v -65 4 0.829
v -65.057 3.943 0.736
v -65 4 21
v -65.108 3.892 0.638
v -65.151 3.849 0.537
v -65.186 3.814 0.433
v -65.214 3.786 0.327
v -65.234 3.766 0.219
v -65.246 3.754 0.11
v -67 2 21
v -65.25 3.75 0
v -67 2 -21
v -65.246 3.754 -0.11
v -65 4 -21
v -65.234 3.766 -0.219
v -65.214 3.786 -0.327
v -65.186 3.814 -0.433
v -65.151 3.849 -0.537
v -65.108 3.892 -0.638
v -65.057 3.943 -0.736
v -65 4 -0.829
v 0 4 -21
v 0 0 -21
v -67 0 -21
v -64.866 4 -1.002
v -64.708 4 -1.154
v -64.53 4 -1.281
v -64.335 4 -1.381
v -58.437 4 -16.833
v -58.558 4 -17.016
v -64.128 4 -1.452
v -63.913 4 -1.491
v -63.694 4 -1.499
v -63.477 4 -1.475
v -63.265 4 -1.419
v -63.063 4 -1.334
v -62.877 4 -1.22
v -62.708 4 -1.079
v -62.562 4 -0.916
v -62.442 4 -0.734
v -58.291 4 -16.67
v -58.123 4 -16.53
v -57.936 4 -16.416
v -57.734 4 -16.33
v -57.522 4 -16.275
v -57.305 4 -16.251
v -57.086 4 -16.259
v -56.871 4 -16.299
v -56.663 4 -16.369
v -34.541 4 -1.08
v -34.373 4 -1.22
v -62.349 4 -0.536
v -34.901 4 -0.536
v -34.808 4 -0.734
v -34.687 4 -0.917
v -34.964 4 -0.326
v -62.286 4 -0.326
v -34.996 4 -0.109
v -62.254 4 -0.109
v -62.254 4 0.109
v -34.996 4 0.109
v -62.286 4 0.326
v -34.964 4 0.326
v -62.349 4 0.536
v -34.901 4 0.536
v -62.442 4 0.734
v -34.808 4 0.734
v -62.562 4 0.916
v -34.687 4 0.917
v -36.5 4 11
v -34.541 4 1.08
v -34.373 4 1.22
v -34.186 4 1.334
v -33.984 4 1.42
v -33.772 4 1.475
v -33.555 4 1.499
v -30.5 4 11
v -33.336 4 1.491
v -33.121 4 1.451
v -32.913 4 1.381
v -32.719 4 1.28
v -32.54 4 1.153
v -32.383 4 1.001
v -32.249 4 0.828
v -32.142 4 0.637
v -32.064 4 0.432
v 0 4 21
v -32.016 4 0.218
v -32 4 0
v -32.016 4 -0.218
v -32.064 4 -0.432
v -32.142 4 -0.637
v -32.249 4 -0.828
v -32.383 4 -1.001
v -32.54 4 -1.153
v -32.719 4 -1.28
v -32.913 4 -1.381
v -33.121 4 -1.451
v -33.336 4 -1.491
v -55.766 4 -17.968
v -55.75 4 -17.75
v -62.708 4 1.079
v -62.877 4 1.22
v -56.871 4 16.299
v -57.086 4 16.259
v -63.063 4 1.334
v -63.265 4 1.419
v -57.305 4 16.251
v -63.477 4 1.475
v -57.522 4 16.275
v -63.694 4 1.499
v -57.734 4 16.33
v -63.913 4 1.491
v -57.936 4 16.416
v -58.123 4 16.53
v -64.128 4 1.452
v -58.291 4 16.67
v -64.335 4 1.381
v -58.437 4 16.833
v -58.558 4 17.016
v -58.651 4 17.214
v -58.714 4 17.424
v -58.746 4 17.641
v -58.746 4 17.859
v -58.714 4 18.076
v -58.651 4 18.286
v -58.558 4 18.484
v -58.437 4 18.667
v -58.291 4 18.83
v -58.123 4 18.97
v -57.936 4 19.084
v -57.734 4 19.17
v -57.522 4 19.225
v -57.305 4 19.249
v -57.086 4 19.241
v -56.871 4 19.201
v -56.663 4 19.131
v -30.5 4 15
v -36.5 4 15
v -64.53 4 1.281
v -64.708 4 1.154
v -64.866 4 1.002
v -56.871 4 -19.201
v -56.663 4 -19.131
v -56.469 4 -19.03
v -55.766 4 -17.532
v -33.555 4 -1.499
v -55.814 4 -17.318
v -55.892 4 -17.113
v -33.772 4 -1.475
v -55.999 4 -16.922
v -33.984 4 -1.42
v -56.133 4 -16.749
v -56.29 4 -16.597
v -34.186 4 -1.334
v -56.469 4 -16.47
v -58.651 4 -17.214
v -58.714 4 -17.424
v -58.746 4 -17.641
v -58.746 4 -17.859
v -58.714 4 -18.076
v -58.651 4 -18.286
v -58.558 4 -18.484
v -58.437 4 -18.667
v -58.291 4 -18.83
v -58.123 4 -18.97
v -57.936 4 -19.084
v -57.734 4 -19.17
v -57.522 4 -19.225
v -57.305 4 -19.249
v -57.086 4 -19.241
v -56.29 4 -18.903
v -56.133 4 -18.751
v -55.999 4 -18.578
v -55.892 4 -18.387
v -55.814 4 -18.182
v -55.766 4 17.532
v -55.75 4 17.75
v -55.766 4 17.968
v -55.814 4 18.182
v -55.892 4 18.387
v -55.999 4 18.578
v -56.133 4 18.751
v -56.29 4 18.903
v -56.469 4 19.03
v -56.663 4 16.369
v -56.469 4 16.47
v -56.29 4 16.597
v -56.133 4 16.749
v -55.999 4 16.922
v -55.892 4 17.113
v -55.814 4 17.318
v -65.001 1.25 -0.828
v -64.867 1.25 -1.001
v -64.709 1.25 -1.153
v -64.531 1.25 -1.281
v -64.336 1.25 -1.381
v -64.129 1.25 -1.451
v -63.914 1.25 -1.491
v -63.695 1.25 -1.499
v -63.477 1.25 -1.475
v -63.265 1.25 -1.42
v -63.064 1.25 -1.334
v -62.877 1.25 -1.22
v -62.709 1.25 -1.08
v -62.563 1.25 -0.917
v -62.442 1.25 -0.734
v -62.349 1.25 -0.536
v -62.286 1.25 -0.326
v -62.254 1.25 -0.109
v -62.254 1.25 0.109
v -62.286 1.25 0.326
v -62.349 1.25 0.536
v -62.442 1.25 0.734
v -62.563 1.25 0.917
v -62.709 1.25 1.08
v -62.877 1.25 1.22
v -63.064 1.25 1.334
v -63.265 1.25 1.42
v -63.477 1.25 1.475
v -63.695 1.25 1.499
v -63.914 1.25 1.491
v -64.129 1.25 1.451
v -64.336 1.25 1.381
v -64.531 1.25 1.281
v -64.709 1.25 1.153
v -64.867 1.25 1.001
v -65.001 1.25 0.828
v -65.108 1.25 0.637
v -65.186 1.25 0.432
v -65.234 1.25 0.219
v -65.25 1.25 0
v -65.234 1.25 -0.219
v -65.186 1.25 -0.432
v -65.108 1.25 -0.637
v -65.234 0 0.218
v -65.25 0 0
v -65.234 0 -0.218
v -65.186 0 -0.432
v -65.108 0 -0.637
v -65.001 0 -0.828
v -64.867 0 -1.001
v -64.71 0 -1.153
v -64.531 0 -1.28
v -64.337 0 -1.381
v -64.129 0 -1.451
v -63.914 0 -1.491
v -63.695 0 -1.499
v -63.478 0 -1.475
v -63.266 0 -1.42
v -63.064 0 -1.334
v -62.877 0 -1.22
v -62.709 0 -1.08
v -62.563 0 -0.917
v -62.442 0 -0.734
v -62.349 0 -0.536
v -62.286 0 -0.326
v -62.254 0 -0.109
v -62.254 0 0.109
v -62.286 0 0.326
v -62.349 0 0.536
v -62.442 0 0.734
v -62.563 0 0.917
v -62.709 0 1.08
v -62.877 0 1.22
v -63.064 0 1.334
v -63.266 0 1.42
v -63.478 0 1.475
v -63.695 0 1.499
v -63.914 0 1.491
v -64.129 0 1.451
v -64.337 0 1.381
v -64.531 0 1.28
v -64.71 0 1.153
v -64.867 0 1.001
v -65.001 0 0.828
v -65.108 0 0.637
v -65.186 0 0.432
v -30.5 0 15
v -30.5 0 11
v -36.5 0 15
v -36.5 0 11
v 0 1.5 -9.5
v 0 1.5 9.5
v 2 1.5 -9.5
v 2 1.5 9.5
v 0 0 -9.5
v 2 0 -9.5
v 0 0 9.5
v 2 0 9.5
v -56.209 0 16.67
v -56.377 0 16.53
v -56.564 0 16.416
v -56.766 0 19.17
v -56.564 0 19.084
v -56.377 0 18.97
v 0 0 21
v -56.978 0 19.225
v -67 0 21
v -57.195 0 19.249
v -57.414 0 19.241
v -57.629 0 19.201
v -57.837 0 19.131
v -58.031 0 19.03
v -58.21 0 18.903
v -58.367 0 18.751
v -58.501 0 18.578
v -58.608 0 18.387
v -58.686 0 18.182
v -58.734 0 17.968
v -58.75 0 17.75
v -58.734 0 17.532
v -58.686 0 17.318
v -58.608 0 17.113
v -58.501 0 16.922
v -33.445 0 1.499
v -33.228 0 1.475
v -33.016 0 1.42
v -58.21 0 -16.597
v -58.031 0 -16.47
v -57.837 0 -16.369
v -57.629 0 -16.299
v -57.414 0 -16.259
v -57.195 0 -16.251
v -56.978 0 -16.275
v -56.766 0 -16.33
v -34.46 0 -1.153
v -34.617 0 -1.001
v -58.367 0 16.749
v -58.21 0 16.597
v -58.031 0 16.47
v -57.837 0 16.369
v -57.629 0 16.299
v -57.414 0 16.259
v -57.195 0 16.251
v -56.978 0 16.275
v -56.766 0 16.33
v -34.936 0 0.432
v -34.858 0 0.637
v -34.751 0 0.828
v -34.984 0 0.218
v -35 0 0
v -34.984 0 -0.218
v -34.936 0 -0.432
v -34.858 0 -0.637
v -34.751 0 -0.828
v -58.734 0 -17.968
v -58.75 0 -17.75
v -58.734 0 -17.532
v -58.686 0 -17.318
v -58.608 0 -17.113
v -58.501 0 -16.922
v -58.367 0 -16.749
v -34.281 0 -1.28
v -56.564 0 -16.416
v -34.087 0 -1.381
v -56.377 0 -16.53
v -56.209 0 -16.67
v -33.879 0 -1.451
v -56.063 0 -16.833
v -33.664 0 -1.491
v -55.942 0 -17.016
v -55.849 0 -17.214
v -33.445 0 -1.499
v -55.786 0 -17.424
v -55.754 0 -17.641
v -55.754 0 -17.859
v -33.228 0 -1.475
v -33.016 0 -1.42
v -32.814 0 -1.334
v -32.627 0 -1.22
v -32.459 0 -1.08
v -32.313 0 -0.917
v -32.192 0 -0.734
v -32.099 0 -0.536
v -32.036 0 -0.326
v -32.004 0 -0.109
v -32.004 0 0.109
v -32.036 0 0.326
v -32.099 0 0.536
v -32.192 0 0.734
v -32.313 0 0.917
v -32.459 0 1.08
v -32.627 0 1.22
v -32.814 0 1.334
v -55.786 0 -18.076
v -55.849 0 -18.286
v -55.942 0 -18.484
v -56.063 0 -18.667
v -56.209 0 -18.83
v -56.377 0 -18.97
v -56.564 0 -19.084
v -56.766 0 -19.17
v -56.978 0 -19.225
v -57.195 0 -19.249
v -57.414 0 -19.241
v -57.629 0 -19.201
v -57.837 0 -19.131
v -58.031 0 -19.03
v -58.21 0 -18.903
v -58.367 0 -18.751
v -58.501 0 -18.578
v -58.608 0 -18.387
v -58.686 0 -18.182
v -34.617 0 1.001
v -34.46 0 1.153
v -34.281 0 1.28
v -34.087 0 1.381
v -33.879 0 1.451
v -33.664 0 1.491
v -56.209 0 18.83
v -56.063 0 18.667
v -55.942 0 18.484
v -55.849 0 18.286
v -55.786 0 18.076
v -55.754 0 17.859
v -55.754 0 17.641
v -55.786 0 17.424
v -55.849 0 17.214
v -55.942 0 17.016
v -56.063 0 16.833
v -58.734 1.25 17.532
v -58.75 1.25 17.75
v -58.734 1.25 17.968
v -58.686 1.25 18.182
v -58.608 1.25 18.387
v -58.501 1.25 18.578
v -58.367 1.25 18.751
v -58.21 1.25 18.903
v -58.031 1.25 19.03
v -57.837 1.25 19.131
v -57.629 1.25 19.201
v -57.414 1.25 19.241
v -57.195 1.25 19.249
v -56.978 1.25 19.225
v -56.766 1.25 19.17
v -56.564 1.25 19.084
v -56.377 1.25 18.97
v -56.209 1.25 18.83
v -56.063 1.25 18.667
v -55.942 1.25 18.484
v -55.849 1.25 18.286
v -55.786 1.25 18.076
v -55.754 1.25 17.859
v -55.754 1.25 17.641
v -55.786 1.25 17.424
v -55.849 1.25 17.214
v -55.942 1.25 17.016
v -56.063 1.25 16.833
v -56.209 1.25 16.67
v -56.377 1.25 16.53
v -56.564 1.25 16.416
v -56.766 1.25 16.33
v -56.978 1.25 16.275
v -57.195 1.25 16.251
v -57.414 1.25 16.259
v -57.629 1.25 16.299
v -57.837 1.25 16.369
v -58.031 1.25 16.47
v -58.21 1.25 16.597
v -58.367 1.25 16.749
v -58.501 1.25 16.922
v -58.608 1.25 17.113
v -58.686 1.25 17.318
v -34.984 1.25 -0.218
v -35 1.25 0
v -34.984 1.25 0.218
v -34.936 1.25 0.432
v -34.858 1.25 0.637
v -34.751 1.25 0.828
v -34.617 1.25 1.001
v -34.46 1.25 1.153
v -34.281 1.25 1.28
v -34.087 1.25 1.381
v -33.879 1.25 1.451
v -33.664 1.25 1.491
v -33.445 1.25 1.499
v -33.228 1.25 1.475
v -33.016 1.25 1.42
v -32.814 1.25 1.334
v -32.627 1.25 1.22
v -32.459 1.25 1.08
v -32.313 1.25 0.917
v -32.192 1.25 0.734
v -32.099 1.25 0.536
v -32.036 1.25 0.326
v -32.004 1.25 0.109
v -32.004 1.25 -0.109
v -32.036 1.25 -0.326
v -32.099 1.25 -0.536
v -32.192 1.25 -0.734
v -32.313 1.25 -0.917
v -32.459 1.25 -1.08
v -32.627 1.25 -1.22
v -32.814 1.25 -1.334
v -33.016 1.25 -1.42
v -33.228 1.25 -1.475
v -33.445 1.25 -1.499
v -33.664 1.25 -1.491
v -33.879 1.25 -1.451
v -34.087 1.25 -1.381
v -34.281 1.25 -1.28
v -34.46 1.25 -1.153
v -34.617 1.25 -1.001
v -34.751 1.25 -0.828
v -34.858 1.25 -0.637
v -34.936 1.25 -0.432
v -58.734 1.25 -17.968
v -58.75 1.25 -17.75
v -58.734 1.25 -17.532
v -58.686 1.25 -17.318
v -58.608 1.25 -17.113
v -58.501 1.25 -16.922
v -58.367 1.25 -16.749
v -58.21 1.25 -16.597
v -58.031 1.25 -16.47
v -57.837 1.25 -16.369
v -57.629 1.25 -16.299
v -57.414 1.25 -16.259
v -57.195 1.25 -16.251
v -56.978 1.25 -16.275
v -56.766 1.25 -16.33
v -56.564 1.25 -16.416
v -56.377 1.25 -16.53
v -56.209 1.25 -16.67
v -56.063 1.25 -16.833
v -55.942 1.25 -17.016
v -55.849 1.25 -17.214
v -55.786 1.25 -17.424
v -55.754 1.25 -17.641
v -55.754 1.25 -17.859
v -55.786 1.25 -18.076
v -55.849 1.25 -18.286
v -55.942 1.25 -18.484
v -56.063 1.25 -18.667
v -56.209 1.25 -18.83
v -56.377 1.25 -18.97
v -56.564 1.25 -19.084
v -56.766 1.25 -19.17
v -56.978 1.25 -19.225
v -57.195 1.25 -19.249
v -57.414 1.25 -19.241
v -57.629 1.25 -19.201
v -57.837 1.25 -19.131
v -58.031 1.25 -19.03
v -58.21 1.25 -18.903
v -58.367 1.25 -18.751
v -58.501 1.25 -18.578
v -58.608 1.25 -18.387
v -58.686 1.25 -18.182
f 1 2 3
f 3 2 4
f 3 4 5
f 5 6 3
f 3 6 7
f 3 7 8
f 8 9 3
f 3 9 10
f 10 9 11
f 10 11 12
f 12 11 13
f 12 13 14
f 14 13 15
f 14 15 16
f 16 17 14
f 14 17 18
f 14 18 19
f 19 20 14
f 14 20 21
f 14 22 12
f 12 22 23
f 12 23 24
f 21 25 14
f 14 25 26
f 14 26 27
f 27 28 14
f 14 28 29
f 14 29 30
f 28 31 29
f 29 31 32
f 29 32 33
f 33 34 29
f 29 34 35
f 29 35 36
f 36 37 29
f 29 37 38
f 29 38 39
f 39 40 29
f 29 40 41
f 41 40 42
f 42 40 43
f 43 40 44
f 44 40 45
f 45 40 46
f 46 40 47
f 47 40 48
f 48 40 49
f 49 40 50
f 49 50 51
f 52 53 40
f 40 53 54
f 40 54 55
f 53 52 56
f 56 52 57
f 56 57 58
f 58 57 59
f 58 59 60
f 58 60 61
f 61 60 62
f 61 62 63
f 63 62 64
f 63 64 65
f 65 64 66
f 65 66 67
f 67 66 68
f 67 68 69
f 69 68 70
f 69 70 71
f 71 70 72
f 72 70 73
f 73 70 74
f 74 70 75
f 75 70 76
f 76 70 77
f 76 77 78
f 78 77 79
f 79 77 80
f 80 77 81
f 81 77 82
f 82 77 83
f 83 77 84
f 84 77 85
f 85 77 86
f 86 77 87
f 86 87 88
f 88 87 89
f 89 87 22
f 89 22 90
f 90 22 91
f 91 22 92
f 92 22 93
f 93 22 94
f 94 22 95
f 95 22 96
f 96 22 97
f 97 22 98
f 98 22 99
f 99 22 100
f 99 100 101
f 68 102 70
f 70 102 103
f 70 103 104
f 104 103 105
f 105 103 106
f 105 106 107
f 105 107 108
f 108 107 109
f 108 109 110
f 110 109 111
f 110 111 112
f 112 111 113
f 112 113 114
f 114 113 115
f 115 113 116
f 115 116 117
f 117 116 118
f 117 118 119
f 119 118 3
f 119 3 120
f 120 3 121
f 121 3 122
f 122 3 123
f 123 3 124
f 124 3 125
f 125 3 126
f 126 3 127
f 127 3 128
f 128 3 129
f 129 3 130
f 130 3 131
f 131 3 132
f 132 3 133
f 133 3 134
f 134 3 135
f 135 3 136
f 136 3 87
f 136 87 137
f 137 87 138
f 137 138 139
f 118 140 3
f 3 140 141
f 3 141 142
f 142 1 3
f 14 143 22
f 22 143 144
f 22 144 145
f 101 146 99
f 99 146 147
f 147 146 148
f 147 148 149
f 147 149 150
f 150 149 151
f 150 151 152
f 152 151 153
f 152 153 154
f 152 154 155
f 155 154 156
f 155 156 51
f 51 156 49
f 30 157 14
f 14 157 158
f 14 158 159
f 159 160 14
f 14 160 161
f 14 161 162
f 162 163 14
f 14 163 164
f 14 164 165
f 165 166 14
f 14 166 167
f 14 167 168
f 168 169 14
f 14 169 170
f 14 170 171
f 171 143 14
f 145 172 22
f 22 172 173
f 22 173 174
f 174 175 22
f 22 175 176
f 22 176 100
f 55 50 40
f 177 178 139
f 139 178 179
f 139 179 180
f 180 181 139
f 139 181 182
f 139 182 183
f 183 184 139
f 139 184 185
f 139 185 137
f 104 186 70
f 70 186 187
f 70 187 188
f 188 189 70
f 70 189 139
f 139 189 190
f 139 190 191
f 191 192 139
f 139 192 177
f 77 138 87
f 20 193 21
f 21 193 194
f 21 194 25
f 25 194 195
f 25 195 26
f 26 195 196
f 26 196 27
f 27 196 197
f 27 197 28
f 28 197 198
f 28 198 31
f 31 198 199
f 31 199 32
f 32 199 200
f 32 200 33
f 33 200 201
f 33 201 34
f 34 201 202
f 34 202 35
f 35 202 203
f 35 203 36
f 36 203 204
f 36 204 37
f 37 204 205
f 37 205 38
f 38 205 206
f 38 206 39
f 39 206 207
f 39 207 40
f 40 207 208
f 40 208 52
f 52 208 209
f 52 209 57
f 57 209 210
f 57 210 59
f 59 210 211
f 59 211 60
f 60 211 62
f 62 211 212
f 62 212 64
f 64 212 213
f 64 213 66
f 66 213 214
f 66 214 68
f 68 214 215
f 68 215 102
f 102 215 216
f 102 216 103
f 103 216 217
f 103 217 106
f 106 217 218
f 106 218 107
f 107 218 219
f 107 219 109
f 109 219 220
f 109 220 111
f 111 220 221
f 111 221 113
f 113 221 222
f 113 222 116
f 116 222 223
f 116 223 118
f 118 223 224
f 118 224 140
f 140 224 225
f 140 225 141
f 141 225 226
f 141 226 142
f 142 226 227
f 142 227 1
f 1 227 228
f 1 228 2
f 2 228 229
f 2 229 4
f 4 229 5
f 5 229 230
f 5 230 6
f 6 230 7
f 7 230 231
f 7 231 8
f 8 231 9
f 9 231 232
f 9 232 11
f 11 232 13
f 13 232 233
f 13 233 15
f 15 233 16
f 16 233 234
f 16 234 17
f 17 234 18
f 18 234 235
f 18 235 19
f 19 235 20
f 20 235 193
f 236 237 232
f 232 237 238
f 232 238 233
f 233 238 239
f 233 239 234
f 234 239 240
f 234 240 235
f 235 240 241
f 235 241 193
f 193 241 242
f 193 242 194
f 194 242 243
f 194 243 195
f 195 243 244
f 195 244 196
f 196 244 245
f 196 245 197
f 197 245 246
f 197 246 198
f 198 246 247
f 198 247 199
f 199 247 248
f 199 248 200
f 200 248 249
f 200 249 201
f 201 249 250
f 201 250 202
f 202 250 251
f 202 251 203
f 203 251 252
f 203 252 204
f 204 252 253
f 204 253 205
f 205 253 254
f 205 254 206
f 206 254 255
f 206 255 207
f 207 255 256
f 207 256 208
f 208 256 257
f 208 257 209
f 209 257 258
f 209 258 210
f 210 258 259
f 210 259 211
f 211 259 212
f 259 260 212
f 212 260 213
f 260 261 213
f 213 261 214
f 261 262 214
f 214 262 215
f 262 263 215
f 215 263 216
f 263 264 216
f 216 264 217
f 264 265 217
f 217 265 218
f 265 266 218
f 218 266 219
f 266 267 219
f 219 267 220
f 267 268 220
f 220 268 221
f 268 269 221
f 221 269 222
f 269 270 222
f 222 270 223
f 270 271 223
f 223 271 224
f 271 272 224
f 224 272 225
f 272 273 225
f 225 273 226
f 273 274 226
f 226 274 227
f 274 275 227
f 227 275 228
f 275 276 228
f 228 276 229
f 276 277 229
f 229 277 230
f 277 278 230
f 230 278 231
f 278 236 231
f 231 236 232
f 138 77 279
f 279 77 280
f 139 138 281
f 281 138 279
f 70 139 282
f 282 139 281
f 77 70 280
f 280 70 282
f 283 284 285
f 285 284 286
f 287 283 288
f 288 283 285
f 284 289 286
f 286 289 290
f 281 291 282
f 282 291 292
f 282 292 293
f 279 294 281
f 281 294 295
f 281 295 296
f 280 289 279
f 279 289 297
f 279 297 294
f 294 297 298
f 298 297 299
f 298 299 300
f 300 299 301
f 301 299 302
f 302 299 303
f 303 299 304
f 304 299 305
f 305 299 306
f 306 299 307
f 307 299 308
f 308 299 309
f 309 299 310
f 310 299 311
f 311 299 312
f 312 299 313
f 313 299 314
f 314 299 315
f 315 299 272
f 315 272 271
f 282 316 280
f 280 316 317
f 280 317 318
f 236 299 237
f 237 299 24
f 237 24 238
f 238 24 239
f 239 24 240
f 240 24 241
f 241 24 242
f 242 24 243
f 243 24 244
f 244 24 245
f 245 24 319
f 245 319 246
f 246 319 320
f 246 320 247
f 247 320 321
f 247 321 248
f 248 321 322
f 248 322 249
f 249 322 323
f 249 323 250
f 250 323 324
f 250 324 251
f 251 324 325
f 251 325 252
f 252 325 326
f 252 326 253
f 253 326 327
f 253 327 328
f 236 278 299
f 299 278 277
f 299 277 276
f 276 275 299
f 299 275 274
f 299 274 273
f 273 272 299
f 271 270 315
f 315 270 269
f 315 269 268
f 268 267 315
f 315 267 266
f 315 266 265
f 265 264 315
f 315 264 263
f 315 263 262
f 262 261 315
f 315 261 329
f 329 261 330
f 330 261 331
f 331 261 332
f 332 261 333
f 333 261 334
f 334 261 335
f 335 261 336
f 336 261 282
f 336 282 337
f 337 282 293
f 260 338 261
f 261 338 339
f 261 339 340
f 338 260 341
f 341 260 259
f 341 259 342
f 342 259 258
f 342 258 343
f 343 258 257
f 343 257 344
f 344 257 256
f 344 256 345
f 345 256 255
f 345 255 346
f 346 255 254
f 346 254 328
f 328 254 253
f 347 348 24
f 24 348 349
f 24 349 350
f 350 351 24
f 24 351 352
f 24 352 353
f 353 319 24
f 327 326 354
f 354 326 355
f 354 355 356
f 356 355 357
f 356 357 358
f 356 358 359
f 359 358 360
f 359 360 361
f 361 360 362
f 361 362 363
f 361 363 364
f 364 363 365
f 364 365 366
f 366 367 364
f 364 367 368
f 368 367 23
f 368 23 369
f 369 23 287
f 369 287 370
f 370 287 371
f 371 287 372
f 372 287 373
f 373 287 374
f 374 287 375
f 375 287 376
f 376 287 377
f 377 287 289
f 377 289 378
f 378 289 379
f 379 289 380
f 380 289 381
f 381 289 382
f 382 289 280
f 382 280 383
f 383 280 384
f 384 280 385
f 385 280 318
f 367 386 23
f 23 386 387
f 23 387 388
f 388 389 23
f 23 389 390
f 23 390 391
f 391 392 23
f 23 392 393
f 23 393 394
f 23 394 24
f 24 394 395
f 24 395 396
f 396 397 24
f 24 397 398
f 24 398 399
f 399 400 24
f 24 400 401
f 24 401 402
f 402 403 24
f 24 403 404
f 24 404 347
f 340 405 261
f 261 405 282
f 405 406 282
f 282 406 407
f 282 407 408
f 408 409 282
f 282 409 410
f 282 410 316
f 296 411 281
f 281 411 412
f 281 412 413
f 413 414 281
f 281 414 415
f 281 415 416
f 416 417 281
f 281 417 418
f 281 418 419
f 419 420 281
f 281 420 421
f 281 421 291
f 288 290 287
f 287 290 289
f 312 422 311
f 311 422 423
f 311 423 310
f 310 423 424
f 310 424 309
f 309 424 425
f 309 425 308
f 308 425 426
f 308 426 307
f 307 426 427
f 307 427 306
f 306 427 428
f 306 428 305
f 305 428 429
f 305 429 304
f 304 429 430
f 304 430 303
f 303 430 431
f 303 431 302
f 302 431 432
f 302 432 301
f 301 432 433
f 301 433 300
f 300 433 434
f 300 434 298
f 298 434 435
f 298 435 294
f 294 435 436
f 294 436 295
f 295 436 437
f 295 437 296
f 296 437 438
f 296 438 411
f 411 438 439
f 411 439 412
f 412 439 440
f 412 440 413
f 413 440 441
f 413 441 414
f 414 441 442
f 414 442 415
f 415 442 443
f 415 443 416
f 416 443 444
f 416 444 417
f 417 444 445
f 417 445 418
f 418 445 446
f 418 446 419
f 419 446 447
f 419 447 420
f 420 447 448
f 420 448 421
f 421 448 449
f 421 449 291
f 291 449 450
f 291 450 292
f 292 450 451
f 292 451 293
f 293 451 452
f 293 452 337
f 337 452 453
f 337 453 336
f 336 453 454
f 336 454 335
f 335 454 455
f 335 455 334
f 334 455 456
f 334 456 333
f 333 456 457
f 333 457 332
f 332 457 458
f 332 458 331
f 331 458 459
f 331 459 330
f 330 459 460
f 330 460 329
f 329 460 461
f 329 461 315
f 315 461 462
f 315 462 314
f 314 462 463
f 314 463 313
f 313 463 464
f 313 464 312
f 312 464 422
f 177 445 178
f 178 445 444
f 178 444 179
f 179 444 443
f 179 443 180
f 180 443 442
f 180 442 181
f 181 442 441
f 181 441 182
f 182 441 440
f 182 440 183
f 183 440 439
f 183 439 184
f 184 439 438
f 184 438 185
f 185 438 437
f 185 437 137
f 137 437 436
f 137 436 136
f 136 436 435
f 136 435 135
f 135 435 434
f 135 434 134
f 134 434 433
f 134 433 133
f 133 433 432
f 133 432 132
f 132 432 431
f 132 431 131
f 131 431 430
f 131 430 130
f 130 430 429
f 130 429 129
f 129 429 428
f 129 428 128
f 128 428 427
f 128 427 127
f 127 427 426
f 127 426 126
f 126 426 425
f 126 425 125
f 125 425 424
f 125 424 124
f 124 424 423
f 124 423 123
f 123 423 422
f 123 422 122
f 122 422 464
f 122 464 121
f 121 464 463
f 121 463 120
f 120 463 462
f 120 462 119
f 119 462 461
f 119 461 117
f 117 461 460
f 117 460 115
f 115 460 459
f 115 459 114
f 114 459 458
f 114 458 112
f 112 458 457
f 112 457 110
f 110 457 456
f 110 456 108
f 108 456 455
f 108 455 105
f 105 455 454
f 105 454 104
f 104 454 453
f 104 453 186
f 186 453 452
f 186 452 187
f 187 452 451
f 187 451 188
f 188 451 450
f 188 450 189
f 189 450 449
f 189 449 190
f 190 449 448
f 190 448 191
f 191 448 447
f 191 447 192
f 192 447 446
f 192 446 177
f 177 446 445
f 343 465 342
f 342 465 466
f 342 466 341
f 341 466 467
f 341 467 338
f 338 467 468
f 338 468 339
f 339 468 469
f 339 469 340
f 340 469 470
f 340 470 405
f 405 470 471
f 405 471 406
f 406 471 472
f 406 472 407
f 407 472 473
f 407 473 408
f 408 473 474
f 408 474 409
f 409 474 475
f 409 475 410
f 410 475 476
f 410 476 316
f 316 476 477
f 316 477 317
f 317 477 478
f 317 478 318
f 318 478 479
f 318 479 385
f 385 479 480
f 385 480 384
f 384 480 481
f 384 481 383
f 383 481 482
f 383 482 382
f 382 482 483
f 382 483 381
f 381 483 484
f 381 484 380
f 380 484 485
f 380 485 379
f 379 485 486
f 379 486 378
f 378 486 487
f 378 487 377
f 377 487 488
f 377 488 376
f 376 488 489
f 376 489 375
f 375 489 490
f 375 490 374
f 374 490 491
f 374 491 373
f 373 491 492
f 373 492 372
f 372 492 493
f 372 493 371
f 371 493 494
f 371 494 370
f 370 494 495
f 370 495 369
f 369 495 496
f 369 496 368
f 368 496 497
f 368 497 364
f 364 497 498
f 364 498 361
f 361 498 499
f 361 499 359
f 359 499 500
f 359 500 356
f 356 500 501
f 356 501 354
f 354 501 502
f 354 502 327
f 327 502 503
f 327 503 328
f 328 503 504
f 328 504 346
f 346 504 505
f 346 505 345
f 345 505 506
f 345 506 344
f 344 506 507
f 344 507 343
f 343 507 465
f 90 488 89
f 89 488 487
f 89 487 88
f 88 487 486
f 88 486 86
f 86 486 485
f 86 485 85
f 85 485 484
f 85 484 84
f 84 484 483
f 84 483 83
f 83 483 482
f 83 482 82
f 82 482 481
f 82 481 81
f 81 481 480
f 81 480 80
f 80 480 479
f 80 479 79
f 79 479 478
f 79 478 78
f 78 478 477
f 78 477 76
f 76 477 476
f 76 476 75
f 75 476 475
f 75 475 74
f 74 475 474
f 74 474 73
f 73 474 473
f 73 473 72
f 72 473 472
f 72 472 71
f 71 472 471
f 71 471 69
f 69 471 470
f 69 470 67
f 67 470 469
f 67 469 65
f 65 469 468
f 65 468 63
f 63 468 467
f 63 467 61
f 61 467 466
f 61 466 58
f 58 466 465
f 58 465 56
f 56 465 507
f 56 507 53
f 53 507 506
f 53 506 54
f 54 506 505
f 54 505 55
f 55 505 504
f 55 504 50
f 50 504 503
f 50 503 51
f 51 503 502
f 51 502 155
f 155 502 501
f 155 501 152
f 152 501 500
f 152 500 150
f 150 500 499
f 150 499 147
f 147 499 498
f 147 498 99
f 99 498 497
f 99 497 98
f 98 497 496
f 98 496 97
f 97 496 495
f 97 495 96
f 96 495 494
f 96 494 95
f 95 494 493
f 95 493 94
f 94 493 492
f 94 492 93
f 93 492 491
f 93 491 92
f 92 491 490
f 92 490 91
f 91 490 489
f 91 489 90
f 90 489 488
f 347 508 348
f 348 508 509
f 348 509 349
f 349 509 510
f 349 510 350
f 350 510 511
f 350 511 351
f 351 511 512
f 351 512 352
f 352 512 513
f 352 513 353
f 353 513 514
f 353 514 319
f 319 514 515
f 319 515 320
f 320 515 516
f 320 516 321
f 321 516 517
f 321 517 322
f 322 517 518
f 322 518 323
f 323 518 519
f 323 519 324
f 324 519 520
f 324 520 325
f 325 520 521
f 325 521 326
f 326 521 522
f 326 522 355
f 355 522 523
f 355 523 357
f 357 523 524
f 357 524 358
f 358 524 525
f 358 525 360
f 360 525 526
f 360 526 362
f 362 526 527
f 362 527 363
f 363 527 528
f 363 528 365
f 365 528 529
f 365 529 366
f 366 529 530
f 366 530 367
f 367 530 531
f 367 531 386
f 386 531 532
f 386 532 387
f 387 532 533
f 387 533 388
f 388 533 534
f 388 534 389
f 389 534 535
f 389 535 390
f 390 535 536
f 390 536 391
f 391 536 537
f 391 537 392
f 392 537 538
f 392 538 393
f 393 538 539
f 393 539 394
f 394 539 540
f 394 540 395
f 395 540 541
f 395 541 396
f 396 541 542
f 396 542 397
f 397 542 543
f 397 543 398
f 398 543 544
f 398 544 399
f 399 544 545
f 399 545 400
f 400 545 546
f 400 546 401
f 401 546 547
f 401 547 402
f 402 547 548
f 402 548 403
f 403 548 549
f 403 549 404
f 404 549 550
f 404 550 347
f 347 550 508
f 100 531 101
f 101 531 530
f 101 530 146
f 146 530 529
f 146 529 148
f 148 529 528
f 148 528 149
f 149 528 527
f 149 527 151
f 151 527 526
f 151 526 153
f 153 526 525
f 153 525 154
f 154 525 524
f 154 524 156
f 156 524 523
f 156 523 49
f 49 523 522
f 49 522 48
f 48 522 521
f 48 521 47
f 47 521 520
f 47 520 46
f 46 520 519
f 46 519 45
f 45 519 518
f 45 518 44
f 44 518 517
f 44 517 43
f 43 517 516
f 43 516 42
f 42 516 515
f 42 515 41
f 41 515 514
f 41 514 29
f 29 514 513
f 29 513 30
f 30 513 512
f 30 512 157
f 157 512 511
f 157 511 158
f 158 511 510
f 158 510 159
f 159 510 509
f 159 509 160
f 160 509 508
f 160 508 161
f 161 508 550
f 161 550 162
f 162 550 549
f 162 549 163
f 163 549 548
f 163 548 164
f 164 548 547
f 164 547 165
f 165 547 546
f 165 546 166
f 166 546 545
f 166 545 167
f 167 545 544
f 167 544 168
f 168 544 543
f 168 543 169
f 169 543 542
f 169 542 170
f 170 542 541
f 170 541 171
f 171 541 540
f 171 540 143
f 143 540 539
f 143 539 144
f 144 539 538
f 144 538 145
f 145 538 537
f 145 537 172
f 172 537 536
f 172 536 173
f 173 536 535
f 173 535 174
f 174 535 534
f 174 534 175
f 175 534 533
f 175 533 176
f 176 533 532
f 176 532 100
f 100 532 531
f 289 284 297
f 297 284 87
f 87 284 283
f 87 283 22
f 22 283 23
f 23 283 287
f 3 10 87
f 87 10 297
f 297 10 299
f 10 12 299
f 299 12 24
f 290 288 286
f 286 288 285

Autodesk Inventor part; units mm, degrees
ref_plane "YZ Plane" through (0, 0, 0) normal (1, 0, 0) x (0, 1, 0)
ref_plane "XZ Plane" through (0, 0, 0) normal (0, 1, 0) x (-1, 0, 0)
ref_plane "XY Plane" through (0, 0, 0) normal (0, 0, 1) x (1, 0, 0)
sketch "Sketch1" plane through (0, 0, 0) normal (0, 1, 0) x (-1, 0, 0)
  arc A0 (67, -23) -> (69, -21) centre (67, -21) ccw
  line L0 (69, -21) -> (69, 21)
  arc A1 (69, 21) -> (67, 23) centre (67, 21) ccw
  line L1 (67, 23) -> (0, 23)
  arc A2 (0, 23) -> (-2, 21) centre (0, 21) ccw
  line L2 (-2, 21) -> (-2, -21)
  arc A3 (-2, -21) -> (0, -23) centre (0, -21) ccw
  line L3 (0, -23) -> (67, -23)
  line L4 (67, -21) -> (0, -21)
  line L5 (0, -21) -> (0, 21)
  line L6 (0, 21) -> (67, 21)
  line L7 (67, 21) -> (67, -21)
  line L8 (67, 21) -> (60.5, 21)
  line L9 (60.5, 21) -> (60.5, 14.5)
  line L10 (60.5, 14.5) -> (67, 14.5)
  line L11 (67, 14.5) -> (67, 21)
  line L12 (67, -21) -> (67, 21)
  line L13 (67, -21) -> (60.5, -21)
  line L14 (60.5, -21) -> (60.5, -14.5)
  line L15 (60.5, -14.5) -> (67, -14.5)
  line L16 (67, -14.5) -> (67, -21)
  line L17 (67, -21) -> (60.5, -14.5)
  line L18 (67, 21) -> (69, 21)
  line L19 (67, 21) -> (60.5, 14.5)
  line L20 (0, 16.25) -> (-2, 16.25)
  circle A4 centre (64.5, -18.5) radius 1
  circle A5 centre (64.5, 18.5) radius 1
  line L21 (60.5, -21) -> (0, -21)
  line L22 (0, -21) -> (0, 21)
  line L23 (0, 21) -> (60.5, 21)
  line L24 (60.5, 21) -> (60.5, 14.5)
  line L25 (60.5, 14.5) -> (67, 14.5)
  line L26 (67, 14.5) -> (67, -14.5)
  line L27 (67, -14.5) -> (60.5, -14.5)
  line L28 (60.5, -14.5) -> (60.5, -21)
  arc A6 (67, -23) -> (69, -21) centre (67, -21) ccw
  line L29 (69, -21) -> (69, 21)
  arc A7 (69, 21) -> (67, 23) centre (67, 21) ccw
  line L30 (67, 23) -> (0, 23)
  arc A8 (0, 23) -> (-2, 21) centre (0, 21) ccw
  line L31 (-2, 21) -> (-2, -21)
  arc A9 (-2, -21) -> (0, -23) centre (0, -21) ccw
  line L32 (0, -23) -> (67, -23)
  line L33 (-2, -10) -> (0, -10)
  line L34 (0, -10) -> (0, 10)
  line L35 (0, 10) -> (-2, 10)
  line L36 (-2, 10) -> (-2, -10)
  line L37 (0, -21) -> (4.5, -21)
  line L38 (67, 21) -> (0, 21)
  line L39 (0, 21) -> (0, -21)
  line L40 (0, -21) -> (67, -21)
  line L41 (67, -21) -> (67, 21)
  line L42 (0, 16.25) -> (-2, 16.25)
  line L43 (67, -21) -> (60.5, -21)
  line L44 (0, -21) -> (0, 21)
  line L45 (0, 21) -> (54, 21)
  line L46 (67, 21) -> (67, 3.25)
  arc A10 (67, -23) -> (69, -21) centre (67, -21) ccw
  line L47 (69, -21) -> (69, 21)
  arc A11 (69, 21) -> (67, 23) centre (67, 21) ccw
  line L48 (67, 23) -> (0, 23)
  arc A12 (0, 23) -> (-2, 21) centre (0, 21) ccw
  line L49 (-2, 21) -> (-2, -21)
  arc A13 (-2, -21) -> (0, -23) centre (0, -21) ccw
  line L50 (0, -23) -> (67, -23)
  line L51 (-2, -10) -> (0, -10)
  line L52 (0, -10) -> (0, 10)
  line L53 (0, 10) -> (-2, 10)
  line L54 (-2, 10) -> (-2, -10)
  line L55 (0, -21) -> (4.5, -21)
  line L56 (67, 21) -> (0, 21)
  line L57 (0, 21) -> (0, -21)
  line L58 (0, -21) -> (67, -21)
  line L59 (67, -21) -> (67, 21)
  line L60 (60.5, -21) -> (60.5, -14.5)
  line L61 (60.5, -14.5) -> (54, -14.5)
  line L62 (54, -14.5) -> (54, -21)
  line L63 (54, -21) -> (0, -21)
  line L64 (54, 21) -> (54, 14.5)
  line L65 (54, 14.5) -> (60.5, 14.5)
  line L66 (60.5, 14.5) -> (60.5, 21)
  line L67 (60.5, 21) -> (67, 21)
  line L68 (67, 3.25) -> (60.5, 3.25)
  line L69 (60.5, 3.25) -> (60.5, -3.25)
  line L70 (60.5, -3.25) -> (67, -3.25)
  line L71 (67, -3.25) -> (67, -21)
  line L72 (67, -3.25) -> (60.5, 3.25)
  line L73 (54, -14.5) -> (60.5, -21)
  line L74 (54, 14.5) -> (60.5, 21)
  point P0 (0, 0)
  point P1 (0, 0)
  point P2 (0, 0)
  point P3 (0, 0)
  point P4 (63.75, 0)
  point P5 (57.25, -17.75)
  point P6 (57.25, 17.75)
  dimension "d0" = 6.5
  dimension "d1" = 6.5
  dimension "d2" = 6.5
  dimension "d3" = 6.5
  dimension "d4" = 10
  dimension "d5" = 10
  dimension "d25" = 10
  dimension "d26" = 10
extrude "Extrusion1" add sketch "Sketch1" along normal blind 2 contours L19 A5 L9 L6 | L7 L10 L19 A5 | L2 L35 L5 L33 | L74 L64 L6 | L9 L65 L74 | L7 L68 L69 L70 L15 L61 L62 L4 L5 L6 L64 L65 L10 | A5 L19 | L19 A5 | L7 L72 L68 | L70 L69 L72 | L7 L17 A4 L15 | L62 L73 L4 | L4 L14 L17 A4 | L14 L73 L61 | A4 L17 | L17 A4
sketch "Sketch2" plane through (0, 2, 0) normal (0, 1, 0) x (1, 0, 0)
  line L0 (0, -10) -> (2, -10) projected
  line L1 (2, -10) -> (2, 10) projected
  line L2 (2, 10) -> (0, 10) projected
  line L3 (0, 10) -> (0, 21) projected
  line L4 (0, 21) -> (-67, 21) projected
  line L5 (-67, 21) -> (-67, -21) projected
  line L6 (-67, -21) -> (0, -21) projected
  line L7 (0, -21) -> (0, -10) projected
  line L8 (-67, -21) -> (0, -21)
  line L9 (0, -21) -> (0, 21)
  line L10 (0, 21) -> (-67, 21)
  line L11 (-67, 21) -> (-67, -21)
  point P0 (0, 0)
extrude "Extrusion2" add sketch "Sketch2" along normal blind 2 contours L7 L6 L5 L4 L3 L9
sketch "Sketch3" plane through (-67, 0, 21) normal (0, 0, 1) x (1, 0, 0)
  point P0 (67, 0)
sketch "Sketch4" plane through (0, 4, 0) normal (0, 1, 0) x (1, 0, 0)
  line L0 (0, 21) -> (-67, 21) projected
  line L1 (-67, 21) -> (-67, -21) projected
  line L2 (-67, -21) -> (0, -21) projected
  line L3 (0, -21) -> (0, 21) projected
  line L4 (0, 10) -> (0, 21) projected
  line L5 (0, 21) -> (-67, -21)
  point P0 (0, 0)
  point P1 (-33.5, 0)
  point P2 (-57.25, 17.75)
  point P3 (-63.75, 0)
  point P4 (-57.25, -17.75)
  point P5 (-57.25, 17.75)
  point P6 (-63.75, 0)
  point P7 (-57.25, -17.75)
hole "Hole1" at (-33.5, 4, 0) at (-57.25, 4, -17.75) at (-57.25, 4, 17.75) at (-63.75, 4, 0) direction (0, -1, 0) diameter 3 depth 8 tip angle 118
sketch "Sketch5" plane through (2, 0, 10) normal (1, 0, 0) x (0, 0, -1)
  line L0 (0, 0) -> (20, 0) projected
  line L1 (20, 0) -> (20, 2) projected
  line L2 (0, 2) -> (20, 2) projected
  line L3 (0, 0) -> (0, 2) projected
  line L4 (20, 2) -> (20, 0)
  line L5 (20, 0) -> (0, 0)
  line L6 (0, 0) -> (0, 2)
  line L7 (0, 2) -> (20, 2)
  line L8 (0, 0) -> (20, 0) projected
  line L9 (0.5, 0) -> (19.5, 0)
  line L10 (19.5, 0) -> (19.5, 1.5)
  line L11 (19.5, 1.5) -> (0.5, 1.5)
  line L12 (0.5, 1.5) -> (0.5, 0)
  point P0 (10, 0)
  dimension "d20" = 0.5
  dimension "d21" = 0.5
  dimension "d22" = 0.5
extrude "Extrusion4" cut sketch "Sketch5" against normal up to surface (2 mm away) contours L3 L2 L1 L0 L10 L11 L12
sketch "Sketch6" plane through (0, 0, 0) normal (0, -1, 0) x (1, 0, 0)
  line L0 (-30.5, 15) -> (-36.5, 15)
  line L1 (-36.5, 15) -> (-36.5, 11)
  line L2 (-36.5, 11) -> (-30.5, 11)
  line L3 (-30.5, 11) -> (-30.5, 15)
  circle A0 centre (-63.75, 0) radius 1.5 projected
  circle A1 centre (-57.25, -17.75) radius 1.5 projected
  circle A2 centre (-33.5, 0) radius 1.5 projected
  circle A3 centre (-57.25, 17.75) radius 1.5 projected
  line L4 (2, 9.5) -> (0, 9.5) projected
  line L5 (0, 21) -> (0, 9.5) projected
  line L6 (-67, 21) -> (0, 21) projected
  line L7 (-67, -21) -> (-67, 21) projected
  line L8 (0, -21) -> (-67, -21) projected
  line L9 (0, -21) -> (0, -9.5) projected
  line L10 (0, -9.5) -> (2, -9.5) projected
  line L11 (2, 9.5) -> (2, -9.5) projected
  line L12 (-33.5, 21) -> (-33.5, 15)
  point P0 (0, 0)
  dimension "d27" = 4
  dimension "d28" = 6
  dimension "d29" = 6
extrude "Extrusion5" cut sketch "Sketch6" against normal through all contours L3 L2 L1 L0
chamfer "Chamfer1" distance 2 angle 45 1 edges at (-67, 4, 0)
properties part number "ttgorear"
